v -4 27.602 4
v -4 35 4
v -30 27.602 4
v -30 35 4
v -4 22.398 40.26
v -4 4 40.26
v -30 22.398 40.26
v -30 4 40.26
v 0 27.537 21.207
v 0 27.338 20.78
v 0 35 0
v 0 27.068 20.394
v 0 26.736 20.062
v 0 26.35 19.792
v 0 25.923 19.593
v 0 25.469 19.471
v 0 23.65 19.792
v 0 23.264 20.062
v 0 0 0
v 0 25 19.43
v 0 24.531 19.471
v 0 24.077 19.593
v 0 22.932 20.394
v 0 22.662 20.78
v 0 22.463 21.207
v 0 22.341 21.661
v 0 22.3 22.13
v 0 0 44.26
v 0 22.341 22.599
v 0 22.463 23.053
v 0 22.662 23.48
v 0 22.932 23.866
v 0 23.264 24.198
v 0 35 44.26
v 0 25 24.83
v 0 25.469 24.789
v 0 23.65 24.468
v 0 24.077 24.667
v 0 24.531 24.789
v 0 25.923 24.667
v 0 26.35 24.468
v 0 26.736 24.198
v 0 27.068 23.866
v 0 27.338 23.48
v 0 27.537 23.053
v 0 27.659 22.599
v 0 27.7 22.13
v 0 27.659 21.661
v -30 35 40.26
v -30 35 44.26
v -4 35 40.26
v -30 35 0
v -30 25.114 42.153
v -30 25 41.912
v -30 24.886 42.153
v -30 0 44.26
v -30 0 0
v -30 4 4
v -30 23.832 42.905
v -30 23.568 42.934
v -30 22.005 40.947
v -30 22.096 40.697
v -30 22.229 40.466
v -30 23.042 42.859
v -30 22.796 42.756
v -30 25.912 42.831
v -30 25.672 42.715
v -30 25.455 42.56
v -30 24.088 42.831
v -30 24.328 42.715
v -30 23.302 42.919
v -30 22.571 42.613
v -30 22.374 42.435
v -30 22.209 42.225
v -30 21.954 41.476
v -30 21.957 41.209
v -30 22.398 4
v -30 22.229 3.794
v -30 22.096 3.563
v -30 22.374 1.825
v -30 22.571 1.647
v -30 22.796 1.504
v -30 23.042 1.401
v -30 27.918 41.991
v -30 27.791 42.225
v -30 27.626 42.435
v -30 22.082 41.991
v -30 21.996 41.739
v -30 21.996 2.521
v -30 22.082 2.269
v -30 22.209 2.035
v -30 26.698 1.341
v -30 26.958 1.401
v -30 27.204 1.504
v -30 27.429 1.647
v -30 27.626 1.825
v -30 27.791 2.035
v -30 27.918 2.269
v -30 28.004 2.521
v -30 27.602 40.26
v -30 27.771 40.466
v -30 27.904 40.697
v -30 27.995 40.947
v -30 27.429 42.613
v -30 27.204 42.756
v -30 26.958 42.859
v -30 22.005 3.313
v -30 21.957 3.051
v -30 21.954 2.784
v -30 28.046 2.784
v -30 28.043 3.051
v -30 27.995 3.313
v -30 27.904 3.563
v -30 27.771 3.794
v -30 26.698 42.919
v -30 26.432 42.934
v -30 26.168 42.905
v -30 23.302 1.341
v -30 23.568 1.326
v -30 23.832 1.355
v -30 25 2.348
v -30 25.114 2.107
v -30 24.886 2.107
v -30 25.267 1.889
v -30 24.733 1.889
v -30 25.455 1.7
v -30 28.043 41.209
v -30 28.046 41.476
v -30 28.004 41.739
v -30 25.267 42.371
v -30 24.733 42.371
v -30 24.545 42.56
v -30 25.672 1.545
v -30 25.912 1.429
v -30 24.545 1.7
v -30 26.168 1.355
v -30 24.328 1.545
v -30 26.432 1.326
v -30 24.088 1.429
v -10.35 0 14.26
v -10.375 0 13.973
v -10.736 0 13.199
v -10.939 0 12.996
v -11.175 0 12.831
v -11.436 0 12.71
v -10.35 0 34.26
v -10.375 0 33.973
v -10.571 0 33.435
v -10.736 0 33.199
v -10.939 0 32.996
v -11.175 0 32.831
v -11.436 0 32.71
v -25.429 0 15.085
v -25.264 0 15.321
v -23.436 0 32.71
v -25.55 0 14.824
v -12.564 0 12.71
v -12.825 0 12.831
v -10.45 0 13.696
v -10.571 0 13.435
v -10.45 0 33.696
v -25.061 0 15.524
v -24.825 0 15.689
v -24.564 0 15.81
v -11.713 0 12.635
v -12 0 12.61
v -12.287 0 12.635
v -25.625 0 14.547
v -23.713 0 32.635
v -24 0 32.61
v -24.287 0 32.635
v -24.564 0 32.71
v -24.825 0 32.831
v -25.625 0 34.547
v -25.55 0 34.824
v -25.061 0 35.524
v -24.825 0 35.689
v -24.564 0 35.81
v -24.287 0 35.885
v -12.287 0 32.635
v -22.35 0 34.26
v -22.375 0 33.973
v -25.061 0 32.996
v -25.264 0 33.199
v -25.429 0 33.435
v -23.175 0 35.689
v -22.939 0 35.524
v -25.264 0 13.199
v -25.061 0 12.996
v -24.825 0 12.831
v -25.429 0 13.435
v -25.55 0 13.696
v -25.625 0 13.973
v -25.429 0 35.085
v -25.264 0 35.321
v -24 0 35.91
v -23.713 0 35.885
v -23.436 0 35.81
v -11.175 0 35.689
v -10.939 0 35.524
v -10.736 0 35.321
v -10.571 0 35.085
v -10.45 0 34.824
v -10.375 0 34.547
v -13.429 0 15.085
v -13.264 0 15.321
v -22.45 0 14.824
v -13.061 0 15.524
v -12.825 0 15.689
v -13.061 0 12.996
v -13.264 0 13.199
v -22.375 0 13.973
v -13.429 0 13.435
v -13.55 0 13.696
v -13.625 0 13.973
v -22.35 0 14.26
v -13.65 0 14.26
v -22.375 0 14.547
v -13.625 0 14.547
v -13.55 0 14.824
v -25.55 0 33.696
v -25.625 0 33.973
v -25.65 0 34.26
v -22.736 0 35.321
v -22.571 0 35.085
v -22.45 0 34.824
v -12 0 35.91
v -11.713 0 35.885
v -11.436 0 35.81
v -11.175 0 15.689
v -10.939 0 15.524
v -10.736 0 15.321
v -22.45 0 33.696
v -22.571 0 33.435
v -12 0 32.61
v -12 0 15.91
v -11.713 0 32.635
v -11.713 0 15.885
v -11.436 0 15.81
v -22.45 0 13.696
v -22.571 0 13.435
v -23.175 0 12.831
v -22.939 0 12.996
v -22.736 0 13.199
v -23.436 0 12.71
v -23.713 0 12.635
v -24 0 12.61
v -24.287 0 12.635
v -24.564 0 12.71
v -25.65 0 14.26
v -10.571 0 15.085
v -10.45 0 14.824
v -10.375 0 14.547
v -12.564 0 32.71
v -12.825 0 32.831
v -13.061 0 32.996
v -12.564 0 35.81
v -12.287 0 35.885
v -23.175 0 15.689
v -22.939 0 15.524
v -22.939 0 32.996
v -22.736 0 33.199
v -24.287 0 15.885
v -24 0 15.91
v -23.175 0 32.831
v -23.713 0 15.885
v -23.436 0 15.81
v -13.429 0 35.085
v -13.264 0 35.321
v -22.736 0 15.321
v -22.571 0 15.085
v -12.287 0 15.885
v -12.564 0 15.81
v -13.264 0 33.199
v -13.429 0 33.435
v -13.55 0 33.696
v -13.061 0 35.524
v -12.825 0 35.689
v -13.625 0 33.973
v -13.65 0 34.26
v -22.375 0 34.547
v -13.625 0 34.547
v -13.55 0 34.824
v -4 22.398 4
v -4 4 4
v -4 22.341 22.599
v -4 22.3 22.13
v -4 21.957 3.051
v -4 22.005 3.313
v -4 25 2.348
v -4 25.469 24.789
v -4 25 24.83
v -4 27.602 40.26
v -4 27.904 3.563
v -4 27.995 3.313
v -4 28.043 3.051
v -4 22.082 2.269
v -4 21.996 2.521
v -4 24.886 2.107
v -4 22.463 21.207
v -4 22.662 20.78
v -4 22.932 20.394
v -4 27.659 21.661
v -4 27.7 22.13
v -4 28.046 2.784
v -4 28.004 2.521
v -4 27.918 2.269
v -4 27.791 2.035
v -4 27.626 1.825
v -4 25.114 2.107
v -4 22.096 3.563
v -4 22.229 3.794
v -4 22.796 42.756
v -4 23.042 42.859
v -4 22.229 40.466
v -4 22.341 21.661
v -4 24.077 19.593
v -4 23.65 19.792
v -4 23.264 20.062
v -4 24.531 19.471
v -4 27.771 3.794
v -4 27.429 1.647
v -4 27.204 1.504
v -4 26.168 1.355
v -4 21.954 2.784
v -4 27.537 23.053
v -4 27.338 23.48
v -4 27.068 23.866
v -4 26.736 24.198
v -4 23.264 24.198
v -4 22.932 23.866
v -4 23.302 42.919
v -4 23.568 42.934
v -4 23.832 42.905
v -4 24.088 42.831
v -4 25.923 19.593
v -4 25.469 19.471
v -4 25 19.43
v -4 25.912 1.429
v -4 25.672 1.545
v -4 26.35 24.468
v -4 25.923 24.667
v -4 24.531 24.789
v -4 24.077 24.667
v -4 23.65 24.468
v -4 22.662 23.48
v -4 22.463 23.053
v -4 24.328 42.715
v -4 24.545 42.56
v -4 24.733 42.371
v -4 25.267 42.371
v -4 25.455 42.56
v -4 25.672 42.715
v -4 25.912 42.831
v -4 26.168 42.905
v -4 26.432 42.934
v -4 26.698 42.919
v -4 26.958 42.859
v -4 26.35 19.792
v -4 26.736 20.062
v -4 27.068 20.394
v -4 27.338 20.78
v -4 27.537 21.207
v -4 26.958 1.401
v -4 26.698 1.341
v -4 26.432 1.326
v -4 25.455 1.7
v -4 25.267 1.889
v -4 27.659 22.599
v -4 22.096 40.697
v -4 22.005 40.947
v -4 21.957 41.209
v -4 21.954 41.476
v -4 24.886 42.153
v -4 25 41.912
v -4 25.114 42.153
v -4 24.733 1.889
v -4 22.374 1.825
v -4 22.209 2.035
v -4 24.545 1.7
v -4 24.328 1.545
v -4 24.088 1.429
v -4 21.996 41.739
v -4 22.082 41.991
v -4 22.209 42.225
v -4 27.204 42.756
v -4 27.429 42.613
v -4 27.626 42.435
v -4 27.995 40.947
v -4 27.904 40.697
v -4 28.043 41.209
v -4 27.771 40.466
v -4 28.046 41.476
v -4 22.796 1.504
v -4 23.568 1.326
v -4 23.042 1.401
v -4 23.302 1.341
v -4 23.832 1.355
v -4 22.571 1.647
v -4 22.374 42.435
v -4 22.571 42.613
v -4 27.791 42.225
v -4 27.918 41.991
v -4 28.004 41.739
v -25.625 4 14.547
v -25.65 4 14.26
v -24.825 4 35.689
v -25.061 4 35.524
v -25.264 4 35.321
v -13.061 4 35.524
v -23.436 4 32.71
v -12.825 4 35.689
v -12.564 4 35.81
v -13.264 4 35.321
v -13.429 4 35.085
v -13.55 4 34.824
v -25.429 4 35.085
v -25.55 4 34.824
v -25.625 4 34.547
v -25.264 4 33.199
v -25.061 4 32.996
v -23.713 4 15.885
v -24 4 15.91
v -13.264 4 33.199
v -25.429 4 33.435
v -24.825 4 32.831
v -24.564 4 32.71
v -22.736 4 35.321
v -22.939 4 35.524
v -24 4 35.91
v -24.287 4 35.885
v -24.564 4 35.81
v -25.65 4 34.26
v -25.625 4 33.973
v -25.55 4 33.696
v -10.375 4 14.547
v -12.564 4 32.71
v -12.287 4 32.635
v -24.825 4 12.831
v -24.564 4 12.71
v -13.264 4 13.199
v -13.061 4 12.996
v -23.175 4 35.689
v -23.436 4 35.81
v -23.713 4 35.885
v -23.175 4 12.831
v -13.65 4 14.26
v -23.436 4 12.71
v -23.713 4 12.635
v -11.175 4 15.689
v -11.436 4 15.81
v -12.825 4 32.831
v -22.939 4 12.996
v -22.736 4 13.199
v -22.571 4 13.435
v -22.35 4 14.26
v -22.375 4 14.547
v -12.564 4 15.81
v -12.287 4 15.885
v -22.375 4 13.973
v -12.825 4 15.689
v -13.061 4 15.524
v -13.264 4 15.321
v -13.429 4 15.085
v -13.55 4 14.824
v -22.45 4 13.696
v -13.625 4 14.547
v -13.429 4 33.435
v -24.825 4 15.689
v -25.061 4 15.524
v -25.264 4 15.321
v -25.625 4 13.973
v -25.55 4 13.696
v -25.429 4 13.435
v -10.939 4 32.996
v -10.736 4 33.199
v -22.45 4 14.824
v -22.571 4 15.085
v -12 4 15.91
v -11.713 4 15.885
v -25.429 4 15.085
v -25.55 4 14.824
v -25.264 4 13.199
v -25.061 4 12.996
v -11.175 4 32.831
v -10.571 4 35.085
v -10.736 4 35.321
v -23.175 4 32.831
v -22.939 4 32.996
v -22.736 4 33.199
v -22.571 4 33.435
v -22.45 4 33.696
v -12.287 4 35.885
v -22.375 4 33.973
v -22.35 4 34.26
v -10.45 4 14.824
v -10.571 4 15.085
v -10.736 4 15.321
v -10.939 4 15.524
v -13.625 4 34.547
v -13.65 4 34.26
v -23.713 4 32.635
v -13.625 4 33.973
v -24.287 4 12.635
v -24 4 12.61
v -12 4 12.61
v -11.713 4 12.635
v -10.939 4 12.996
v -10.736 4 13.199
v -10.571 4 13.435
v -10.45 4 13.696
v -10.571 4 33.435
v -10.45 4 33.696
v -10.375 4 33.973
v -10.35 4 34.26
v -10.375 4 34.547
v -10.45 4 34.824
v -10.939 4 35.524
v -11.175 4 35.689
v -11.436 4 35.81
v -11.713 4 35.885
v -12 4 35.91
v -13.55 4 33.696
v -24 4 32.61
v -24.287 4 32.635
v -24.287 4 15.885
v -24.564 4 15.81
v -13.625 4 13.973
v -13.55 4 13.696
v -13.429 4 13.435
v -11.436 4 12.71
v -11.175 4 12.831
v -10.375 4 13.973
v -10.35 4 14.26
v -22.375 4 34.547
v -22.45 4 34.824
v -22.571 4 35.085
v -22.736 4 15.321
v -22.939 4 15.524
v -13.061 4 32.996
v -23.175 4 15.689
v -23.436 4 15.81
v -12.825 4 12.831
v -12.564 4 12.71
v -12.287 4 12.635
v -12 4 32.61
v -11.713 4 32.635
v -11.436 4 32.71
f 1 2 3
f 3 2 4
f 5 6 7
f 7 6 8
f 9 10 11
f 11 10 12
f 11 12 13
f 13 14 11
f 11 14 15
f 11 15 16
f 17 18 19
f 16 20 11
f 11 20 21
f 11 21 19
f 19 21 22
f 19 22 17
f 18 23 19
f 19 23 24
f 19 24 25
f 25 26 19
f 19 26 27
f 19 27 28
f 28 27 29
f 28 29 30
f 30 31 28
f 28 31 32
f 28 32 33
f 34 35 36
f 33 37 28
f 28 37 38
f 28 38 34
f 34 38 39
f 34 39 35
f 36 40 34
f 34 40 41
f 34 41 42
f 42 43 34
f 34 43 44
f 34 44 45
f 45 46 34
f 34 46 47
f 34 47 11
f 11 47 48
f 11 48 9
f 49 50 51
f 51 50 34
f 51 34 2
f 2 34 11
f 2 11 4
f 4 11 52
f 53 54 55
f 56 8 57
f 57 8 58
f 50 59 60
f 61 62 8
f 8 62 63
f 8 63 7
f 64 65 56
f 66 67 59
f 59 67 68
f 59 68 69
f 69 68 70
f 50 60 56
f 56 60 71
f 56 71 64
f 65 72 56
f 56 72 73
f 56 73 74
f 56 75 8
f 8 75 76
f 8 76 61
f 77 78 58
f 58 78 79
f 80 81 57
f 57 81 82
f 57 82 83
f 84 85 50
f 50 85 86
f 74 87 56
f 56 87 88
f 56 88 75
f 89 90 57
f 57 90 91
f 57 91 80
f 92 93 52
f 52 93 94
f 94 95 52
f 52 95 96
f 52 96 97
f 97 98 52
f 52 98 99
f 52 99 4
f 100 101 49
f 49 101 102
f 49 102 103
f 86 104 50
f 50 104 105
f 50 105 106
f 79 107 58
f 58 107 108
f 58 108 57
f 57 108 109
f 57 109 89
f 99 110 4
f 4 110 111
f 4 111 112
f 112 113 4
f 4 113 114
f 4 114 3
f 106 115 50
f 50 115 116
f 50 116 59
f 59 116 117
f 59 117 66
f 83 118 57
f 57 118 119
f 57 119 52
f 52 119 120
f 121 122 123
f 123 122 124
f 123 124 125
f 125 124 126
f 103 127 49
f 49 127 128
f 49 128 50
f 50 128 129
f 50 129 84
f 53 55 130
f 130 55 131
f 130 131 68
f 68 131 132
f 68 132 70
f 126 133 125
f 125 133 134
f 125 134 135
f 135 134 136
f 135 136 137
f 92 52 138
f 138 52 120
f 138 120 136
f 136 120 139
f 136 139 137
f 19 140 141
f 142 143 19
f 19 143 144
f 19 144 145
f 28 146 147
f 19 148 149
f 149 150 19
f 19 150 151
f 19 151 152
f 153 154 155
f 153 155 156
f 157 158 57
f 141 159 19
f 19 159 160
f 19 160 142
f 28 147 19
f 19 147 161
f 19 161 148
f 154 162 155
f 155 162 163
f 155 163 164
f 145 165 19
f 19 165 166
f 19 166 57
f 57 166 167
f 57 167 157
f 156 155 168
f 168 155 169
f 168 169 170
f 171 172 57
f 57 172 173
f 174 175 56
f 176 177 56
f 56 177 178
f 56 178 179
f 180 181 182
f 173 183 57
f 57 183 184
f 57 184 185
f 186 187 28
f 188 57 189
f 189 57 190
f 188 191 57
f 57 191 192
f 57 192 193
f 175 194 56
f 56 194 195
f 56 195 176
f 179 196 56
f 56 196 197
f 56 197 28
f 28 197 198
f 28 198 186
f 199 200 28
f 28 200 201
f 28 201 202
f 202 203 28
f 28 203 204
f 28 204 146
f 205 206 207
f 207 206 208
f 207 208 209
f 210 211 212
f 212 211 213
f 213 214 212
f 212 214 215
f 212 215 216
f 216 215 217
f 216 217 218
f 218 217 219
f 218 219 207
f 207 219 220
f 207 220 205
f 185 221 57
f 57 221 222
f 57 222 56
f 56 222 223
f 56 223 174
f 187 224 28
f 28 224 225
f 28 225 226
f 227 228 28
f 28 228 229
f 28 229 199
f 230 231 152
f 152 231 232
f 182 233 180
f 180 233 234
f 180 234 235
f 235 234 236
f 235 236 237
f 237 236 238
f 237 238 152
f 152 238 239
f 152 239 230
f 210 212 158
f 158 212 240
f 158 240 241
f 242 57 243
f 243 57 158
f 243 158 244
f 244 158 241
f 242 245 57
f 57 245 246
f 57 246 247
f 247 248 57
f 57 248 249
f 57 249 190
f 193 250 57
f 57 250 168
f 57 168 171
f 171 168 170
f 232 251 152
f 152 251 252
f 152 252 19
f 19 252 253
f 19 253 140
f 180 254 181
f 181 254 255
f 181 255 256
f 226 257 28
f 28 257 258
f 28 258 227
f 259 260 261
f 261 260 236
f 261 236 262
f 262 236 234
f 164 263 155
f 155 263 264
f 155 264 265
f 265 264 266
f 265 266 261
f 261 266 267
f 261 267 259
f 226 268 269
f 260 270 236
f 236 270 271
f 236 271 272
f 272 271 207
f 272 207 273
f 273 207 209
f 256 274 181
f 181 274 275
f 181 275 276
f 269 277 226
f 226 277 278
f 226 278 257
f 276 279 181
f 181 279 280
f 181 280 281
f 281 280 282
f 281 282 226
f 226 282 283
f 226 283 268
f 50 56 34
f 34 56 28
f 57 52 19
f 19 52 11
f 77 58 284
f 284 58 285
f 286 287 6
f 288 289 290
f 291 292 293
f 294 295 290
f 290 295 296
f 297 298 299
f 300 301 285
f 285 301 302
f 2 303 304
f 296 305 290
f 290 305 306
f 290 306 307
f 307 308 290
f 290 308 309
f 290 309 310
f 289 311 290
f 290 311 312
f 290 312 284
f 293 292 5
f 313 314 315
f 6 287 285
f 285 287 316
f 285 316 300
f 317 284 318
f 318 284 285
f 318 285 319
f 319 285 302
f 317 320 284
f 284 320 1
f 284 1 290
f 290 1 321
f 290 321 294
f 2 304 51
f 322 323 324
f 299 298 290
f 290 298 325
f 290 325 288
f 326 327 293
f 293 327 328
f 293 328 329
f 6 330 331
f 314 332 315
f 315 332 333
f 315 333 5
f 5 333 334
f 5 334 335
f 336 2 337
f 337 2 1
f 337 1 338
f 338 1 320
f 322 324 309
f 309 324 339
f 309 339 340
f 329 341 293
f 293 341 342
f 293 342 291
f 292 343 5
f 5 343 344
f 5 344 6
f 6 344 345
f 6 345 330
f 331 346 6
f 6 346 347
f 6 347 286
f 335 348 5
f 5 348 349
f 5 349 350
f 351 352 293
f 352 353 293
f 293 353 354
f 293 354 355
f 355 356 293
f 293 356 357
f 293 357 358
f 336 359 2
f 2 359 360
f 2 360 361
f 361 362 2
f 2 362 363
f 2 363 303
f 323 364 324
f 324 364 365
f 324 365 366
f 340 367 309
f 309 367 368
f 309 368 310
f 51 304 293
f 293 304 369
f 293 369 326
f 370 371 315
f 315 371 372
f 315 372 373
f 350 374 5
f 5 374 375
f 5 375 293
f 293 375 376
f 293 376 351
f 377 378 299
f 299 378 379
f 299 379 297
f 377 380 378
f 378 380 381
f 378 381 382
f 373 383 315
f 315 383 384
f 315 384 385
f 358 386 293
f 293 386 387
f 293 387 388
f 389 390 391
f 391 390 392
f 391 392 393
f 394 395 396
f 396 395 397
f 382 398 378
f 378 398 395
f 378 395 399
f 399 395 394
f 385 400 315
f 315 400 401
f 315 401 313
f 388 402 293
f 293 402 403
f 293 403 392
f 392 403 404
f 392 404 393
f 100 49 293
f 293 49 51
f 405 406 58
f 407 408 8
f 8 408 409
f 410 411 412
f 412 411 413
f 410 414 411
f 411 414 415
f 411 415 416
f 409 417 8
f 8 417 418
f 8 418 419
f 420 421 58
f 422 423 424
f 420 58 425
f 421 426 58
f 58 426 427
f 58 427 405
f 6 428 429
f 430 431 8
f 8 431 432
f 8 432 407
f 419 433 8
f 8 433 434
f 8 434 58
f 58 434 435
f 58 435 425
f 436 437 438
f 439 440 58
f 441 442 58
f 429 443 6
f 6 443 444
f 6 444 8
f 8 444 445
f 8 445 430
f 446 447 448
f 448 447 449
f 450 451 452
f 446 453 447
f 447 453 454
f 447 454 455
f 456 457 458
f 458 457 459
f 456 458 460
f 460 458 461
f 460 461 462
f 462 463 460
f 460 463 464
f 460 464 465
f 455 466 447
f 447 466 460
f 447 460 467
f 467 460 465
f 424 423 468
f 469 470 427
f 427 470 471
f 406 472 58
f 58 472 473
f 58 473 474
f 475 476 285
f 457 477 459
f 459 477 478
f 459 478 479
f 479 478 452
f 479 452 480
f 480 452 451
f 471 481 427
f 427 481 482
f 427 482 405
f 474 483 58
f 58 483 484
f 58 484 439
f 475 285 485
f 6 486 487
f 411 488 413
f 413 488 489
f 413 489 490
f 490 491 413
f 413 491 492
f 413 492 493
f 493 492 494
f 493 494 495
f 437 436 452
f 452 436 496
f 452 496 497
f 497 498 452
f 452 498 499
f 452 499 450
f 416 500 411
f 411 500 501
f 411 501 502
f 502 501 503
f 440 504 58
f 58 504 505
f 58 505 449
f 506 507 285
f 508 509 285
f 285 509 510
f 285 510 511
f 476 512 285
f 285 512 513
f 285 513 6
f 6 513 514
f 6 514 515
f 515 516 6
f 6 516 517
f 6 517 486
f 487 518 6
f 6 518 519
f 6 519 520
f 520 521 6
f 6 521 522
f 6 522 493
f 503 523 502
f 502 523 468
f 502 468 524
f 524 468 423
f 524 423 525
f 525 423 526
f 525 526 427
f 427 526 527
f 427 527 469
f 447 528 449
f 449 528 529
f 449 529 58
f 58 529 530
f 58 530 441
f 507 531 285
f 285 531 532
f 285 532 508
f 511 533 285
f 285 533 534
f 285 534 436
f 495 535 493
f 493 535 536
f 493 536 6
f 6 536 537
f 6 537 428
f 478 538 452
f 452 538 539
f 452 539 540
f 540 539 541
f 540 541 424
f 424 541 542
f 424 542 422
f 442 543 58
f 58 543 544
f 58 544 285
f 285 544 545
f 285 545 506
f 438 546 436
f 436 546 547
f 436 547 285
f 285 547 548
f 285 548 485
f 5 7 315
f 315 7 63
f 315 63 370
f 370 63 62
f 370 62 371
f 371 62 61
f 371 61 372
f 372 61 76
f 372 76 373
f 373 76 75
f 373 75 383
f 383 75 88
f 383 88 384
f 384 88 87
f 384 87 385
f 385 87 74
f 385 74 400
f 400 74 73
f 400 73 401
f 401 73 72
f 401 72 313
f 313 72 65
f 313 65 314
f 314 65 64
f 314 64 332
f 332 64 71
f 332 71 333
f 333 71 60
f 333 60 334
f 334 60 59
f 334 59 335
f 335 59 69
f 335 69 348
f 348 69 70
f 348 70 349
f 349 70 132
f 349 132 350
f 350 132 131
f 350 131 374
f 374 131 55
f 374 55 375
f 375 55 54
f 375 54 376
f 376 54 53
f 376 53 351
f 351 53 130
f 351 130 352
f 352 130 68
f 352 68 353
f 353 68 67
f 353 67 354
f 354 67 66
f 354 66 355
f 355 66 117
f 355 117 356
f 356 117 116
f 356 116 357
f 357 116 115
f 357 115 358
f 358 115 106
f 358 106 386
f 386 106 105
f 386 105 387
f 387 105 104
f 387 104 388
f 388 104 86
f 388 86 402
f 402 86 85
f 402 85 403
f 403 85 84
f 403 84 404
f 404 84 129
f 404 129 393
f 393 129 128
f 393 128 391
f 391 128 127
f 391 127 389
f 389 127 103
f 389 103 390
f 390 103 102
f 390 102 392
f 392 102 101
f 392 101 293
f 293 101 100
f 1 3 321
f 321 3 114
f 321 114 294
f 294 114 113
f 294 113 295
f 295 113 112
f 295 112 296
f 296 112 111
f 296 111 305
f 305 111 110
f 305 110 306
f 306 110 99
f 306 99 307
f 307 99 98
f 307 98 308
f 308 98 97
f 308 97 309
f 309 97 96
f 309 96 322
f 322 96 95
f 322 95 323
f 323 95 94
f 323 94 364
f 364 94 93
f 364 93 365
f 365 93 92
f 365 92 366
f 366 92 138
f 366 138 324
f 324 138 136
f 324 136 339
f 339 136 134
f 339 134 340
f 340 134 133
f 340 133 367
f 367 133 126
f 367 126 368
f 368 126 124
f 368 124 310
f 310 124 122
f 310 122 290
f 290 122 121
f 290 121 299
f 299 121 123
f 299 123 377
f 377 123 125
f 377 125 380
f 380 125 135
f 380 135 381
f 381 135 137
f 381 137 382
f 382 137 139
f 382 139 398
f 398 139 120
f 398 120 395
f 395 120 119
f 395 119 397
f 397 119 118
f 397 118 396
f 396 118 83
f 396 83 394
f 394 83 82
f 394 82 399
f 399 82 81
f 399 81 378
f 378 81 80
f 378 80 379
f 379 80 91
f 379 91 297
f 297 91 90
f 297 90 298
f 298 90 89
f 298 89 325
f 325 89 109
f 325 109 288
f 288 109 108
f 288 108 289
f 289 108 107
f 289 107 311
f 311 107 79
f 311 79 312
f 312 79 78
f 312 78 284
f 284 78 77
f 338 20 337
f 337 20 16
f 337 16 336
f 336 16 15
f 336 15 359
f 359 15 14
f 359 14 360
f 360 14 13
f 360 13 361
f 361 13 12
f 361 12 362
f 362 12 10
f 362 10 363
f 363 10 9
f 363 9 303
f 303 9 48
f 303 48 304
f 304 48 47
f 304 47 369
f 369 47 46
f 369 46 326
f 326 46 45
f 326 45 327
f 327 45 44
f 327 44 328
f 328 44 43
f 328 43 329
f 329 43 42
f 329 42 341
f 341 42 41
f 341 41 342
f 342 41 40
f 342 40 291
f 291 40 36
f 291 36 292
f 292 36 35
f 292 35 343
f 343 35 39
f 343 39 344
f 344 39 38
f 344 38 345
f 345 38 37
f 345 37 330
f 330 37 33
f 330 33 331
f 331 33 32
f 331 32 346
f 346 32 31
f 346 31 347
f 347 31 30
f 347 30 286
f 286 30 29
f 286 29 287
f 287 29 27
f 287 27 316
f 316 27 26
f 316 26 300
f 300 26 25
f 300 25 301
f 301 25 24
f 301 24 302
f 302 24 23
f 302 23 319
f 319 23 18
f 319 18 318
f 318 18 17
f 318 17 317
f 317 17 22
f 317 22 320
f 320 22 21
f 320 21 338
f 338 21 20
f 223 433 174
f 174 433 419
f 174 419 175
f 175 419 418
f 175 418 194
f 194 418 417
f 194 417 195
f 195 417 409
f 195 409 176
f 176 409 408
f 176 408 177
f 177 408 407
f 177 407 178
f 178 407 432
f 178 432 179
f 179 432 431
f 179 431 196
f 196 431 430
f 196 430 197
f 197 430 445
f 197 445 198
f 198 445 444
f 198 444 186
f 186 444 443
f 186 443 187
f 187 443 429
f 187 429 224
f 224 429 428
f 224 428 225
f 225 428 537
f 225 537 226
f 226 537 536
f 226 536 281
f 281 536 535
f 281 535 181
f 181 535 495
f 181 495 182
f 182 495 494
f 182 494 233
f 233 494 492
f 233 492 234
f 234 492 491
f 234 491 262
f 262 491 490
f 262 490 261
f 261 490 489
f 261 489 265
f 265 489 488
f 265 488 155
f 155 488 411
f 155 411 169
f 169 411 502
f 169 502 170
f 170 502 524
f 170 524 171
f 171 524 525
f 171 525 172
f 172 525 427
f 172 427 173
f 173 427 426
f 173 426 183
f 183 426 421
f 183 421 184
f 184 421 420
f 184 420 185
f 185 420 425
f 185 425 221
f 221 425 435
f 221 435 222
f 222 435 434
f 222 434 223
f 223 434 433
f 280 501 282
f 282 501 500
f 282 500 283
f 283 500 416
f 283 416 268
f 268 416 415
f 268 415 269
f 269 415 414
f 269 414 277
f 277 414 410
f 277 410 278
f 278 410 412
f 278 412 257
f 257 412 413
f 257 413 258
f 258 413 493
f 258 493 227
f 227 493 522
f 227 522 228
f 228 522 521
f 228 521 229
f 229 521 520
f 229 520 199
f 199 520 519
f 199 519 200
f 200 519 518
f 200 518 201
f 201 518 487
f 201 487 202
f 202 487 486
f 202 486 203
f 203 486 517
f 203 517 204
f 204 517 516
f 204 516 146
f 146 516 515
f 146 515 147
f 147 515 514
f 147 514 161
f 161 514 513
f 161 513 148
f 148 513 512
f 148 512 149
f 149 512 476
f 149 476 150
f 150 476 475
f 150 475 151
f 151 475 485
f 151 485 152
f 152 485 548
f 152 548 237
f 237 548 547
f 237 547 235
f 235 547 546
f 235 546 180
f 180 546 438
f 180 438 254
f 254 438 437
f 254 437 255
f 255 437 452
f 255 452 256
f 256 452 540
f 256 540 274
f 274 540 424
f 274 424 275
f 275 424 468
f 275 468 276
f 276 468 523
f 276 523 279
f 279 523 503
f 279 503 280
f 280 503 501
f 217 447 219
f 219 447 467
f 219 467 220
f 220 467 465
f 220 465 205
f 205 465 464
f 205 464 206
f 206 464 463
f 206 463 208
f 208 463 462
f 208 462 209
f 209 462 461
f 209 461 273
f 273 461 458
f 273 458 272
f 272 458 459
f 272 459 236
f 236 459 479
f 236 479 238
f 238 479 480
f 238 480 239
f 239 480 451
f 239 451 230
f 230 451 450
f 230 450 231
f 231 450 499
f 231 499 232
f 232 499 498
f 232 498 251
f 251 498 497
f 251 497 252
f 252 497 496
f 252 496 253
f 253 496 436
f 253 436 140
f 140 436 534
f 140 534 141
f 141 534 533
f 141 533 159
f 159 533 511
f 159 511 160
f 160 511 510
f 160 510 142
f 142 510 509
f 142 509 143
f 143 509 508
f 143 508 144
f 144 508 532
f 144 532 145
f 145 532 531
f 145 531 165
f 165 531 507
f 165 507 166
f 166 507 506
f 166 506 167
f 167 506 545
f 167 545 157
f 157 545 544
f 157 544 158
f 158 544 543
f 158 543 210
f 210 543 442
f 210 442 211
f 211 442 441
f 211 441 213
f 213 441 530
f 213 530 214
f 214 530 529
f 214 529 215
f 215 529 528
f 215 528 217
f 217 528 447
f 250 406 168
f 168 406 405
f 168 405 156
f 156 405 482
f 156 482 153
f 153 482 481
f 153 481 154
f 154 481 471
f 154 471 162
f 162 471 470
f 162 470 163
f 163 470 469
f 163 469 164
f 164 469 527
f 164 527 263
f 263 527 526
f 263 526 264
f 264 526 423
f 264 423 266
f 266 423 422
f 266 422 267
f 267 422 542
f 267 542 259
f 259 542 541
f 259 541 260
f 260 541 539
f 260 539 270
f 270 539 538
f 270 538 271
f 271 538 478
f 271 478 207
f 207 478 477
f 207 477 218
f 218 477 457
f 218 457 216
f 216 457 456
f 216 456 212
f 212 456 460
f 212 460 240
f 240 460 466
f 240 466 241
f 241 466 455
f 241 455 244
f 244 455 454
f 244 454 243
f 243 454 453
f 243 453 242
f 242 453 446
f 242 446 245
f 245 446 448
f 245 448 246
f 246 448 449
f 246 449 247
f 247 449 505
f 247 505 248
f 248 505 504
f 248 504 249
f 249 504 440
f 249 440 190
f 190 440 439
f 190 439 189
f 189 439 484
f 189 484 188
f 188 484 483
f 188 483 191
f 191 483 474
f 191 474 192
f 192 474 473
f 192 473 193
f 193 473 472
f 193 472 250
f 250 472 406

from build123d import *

# Parameters (mm, degrees)
SKETCH1_W               = 30
SKETCH1_H               = 35
BOSS_EXTRUDE1_DEPTH     = 44.26
SKETCH2_W               = 26
SKETCH2_H               = 36.26
CUT_EXTRUDE1_DEPTH      = 31
CUT_EXTRUDE2_DEPTH      = 26
CUT_EXTRUDE3_DEPTH      = 64.905771257
CUT_EXTRUDE3_DEPTH_BACK = 64.905771257
SKETCH4_R               = 2.7
CUT_EXTRUDE7_DEPTH      = 62.805724654
CUT_EXTRUDE7_DEPTH_BACK = 62.805724654
SKETCH6_R               = 1.65


with BuildPart() as part:
    # Sketch1 → Boss-Extrude1 (new body)
    with BuildSketch(Plane.XY):
        with Locations((-15, 17.5)):
            Rectangle(SKETCH1_W, SKETCH1_H)
    extrude(amount=BOSS_EXTRUDE1_DEPTH)

    # Sketch2 → Cut-Extrude1 (cut)
    with BuildSketch(Plane(origin=(0, 35, 0), x_dir=(1, 0, 0), z_dir=(0, 1, 0))):
        with Locations((-17, -22.13)):
            Rectangle(SKETCH2_W, SKETCH2_H)
    extrude(amount=-CUT_EXTRUDE1_DEPTH, mode=Mode.SUBTRACT)

    # Sketch3 → Cut-Extrude2 (cut)
    with BuildSketch(Plane.ZY.offset(30)):
        with BuildLine():
            Line((4, 27.602220032), (4, 22.397779968))
            ThreePointArc((4, 22.397779968), (1.570379812, 22.680763567), (2.347731949, 25))
            ThreePointArc((2.347731949, 25), (1.570379812, 27.319236433), (4, 27.602220032))
        make_face()
        with BuildLine():
            Line((40.26, 27.602220032), (40.26, 22.397779968))
            ThreePointArc((40.26, 22.397779968), (42.689620188, 22.680763567), (41.912268051, 25))
            ThreePointArc((41.912268051, 25), (42.689620188, 27.319236433), (40.26, 27.602220032))
        make_face()
    extrude(amount=-CUT_EXTRUDE2_DEPTH, mode=Mode.SUBTRACT)

    # Sketch4 → Cut-Extrude3 (cut, two sides: drawn at the far end of the back side and taken through both)
    with BuildSketch(Plane(origin=(0, 0, 0), x_dir=(0, 0, -1), z_dir=(1, 0, 0)).offset(-CUT_EXTRUDE3_DEPTH_BACK)):
        with Locations(Location((-22.13, 25, 0), (0, 0, 90))):
            Circle(SKETCH4_R)
    extrude(amount=CUT_EXTRUDE3_DEPTH + CUT_EXTRUDE3_DEPTH_BACK, mode=Mode.SUBTRACT)

    # Sketch6 → Cut-Extrude7 (cut, two sides: drawn at the far end of the back side and taken through both)
    with BuildSketch(Plane(origin=(0, 4, 0), x_dir=(1, 0, 0), z_dir=(0, 1, 0)).offset(-CUT_EXTRUDE7_DEPTH_BACK)):
        with Locations(Location((-24, -34.26, 0), (0, 0, 180))):
            Circle(SKETCH6_R)
        with Locations(Location((-12, -34.26, 0), (0, 0, 180))):
            Circle(SKETCH6_R)
        with Locations((-12, -14.26)):
            Circle(SKETCH6_R)
        with Locations((-24, -14.26)):
            Circle(SKETCH6_R)
    extrude(amount=CUT_EXTRUDE7_DEPTH + CUT_EXTRUDE7_DEPTH_BACK, mode=Mode.SUBTRACT)


solid = part.part
